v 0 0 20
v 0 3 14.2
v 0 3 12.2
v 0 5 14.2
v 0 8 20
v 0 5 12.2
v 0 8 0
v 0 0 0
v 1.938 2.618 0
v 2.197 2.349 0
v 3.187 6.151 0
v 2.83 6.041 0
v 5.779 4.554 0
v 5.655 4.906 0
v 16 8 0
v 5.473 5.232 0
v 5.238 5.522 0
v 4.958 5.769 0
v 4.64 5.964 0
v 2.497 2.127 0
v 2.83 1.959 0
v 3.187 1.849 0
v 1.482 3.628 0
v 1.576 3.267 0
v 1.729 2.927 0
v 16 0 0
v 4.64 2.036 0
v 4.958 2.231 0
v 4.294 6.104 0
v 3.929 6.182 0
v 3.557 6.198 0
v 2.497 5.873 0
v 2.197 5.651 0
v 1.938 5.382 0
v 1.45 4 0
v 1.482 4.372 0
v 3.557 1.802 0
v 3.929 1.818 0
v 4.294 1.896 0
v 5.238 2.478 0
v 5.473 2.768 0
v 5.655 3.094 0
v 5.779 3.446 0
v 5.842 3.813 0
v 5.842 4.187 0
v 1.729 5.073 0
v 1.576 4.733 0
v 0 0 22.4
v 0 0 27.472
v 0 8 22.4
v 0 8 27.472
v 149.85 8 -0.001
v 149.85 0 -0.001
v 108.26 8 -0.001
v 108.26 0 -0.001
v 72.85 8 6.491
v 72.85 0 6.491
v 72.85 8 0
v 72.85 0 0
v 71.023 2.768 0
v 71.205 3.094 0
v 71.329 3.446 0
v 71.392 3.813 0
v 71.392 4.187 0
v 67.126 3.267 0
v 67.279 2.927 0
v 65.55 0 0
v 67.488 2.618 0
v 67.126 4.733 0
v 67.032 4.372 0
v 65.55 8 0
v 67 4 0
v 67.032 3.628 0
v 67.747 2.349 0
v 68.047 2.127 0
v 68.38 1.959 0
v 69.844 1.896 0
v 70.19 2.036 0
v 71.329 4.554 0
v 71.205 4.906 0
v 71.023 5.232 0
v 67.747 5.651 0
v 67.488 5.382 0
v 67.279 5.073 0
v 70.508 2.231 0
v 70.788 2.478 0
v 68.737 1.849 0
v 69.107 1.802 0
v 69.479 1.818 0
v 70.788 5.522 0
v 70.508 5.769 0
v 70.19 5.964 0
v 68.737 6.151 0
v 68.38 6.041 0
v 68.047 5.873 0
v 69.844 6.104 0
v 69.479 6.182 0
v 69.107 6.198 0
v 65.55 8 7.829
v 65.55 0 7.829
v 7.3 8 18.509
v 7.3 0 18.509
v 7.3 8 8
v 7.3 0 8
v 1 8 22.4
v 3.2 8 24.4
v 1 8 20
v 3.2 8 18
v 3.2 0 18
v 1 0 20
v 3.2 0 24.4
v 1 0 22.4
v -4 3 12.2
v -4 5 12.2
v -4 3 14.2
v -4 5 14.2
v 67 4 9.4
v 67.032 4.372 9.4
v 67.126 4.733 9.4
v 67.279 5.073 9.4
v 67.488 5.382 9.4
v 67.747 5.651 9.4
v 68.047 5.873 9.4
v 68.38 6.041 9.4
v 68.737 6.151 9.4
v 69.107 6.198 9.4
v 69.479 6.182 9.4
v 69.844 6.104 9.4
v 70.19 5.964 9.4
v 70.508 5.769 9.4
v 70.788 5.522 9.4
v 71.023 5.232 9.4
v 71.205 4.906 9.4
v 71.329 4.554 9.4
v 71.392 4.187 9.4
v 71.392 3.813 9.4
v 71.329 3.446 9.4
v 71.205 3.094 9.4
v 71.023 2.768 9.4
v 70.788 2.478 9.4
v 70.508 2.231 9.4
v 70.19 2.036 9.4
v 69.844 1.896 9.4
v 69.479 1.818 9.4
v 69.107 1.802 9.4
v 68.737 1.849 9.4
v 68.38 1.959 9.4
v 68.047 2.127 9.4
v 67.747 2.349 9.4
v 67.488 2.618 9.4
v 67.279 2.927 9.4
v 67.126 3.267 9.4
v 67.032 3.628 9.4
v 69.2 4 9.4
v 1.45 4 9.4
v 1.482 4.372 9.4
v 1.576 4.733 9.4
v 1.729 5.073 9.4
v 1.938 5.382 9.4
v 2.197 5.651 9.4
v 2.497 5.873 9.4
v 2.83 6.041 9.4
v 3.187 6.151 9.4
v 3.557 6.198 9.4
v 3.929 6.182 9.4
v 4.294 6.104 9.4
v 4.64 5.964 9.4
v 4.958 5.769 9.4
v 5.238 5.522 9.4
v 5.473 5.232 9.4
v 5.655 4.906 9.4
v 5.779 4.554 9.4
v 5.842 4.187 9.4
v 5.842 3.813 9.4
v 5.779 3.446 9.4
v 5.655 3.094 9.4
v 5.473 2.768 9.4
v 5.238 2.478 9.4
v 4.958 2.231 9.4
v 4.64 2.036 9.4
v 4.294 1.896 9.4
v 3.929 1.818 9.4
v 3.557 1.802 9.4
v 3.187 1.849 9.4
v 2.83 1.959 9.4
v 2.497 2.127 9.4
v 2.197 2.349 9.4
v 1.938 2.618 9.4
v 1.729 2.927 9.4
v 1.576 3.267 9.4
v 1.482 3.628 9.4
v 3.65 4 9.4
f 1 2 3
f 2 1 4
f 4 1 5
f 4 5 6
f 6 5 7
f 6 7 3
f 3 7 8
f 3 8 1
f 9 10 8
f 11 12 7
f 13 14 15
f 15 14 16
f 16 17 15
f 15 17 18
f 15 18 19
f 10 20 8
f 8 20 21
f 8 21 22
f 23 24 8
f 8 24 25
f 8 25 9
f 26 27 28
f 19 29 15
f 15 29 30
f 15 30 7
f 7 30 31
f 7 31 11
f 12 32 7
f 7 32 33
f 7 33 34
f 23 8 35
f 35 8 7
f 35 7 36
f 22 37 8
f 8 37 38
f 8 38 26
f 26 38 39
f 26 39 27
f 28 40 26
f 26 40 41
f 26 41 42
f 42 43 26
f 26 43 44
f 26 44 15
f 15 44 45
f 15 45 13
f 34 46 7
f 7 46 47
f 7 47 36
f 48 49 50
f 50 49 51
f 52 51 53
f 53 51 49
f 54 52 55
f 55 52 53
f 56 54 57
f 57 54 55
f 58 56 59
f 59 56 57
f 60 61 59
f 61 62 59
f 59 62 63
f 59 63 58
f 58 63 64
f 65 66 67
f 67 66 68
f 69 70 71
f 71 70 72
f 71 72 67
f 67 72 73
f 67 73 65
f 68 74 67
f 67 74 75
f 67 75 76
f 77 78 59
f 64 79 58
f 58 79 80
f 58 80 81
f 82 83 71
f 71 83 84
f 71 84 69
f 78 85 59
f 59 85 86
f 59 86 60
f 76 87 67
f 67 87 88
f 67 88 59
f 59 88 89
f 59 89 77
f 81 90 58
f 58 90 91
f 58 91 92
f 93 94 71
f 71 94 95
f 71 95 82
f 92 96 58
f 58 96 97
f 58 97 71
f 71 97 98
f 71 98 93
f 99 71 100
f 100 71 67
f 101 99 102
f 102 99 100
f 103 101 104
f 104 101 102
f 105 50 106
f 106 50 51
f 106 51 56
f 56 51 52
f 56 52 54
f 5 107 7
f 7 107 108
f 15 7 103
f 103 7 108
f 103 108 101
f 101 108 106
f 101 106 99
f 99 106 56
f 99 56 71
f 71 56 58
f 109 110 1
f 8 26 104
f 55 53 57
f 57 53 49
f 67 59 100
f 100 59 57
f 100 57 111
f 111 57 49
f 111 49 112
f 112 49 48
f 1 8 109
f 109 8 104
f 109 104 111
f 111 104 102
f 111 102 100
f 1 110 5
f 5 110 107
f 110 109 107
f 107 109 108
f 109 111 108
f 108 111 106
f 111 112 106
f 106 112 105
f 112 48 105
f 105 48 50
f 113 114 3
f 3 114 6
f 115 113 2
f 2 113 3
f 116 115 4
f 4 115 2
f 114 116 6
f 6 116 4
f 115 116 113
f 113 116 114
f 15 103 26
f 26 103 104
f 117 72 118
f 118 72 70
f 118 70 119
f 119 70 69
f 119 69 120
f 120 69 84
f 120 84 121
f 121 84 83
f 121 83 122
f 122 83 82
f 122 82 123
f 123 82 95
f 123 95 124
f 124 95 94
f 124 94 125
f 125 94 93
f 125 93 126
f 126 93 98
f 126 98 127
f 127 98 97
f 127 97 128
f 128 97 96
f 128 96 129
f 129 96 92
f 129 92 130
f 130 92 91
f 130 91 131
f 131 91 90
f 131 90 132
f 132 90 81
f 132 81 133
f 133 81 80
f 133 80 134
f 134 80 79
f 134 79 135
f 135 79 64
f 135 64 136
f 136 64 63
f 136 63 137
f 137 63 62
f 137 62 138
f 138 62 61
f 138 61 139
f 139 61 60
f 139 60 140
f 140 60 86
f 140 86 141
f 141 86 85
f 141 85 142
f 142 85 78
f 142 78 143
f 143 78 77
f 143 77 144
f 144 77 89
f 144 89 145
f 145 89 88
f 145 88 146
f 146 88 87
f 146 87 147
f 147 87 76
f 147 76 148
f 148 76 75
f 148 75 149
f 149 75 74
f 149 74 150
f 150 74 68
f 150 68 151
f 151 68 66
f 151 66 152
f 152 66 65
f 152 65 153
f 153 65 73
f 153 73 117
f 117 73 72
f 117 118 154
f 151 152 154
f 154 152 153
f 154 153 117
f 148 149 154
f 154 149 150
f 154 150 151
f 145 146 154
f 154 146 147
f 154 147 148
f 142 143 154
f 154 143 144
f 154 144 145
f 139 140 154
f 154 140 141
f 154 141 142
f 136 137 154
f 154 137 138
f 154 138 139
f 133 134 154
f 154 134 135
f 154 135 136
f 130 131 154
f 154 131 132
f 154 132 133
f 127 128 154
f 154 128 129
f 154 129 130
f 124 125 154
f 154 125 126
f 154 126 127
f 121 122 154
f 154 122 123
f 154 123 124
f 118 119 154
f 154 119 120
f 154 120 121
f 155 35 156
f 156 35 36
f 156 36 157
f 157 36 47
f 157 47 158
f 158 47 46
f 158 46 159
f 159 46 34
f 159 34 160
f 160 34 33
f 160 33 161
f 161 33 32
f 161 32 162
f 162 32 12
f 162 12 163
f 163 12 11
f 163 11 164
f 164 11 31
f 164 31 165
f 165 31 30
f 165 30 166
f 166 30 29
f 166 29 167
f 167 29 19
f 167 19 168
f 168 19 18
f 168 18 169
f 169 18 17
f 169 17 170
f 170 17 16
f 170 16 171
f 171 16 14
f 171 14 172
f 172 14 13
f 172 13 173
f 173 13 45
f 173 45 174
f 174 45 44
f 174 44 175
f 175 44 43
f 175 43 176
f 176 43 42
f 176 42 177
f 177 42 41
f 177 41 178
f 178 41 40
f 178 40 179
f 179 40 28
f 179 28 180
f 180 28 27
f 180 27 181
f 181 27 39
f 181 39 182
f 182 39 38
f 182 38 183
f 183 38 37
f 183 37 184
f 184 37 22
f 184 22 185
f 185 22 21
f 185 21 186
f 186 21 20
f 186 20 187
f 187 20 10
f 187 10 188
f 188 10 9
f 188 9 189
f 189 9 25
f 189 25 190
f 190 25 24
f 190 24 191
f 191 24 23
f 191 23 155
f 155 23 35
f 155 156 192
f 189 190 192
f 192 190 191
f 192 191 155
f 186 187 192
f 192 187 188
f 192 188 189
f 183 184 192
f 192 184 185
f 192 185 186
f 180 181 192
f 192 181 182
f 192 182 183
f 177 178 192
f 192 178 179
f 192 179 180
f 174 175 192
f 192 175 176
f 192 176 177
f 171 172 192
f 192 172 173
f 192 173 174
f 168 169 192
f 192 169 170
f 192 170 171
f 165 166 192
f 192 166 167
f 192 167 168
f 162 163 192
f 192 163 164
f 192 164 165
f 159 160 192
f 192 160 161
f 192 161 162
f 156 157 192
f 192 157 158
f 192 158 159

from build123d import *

# Parameters (mm, degrees)
P_IDAT_VYSUNUT_M1_DEPTH  = 8
ODEBRAT_VYSUNUT_M1_DEPTH = 153.557332159
SKICA3_W                 = 2
SKICA3_H                 = 2
P_IDAT_VYSUNUT_M2_DEPTH  = 4
SKICA5_W                 = 16
SKICA5_H                 = 8
P_IDAT_VYSUNUT_M4_DEPTH  = 8
ODEBRAT_VYSUNUT_M3_DEPTH = 153.557332159
SKICA8_R                 = 2.2
ODEBRAT_VYSUNUT_M4_DEPTH = 9.4


with BuildPart() as part:
    # Skica1 → Přidat vysunutím1 (new body)
    with BuildSketch(Plane(origin=(0, 0, 0), x_dir=(1, 0, 0), z_dir=(0, 1, 0))):
        Polygon((0, 0), (0, -27.47211487), (149.85, 0.000769495), (108.259653873, 0.000769495), (72.85, -6.491091207), (72.85, 0), (65.55, 0), (65.55, -7.829443265), (7.3, -18.508759343), (7.3, 0), align=None)
    extrude(amount=P_IDAT_VYSUNUT_M1_DEPTH)

    # Skica2 → Odebrat vysunutím1 (cut, through all)
    with BuildSketch(Plane(origin=(0, 8, 0), x_dir=(1, 0, 0), z_dir=(0, 1, 0))):
        Polygon((0, -20), (1, -20), (3.2, -18), (3.2, -24.4), (1, -22.4), (0, -22.4), align=None)
    extrude(amount=-ODEBRAT_VYSUNUT_M1_DEPTH, mode=Mode.SUBTRACT)

    # Skica3 → Přidat vysunutím2 (add)
    with BuildSketch(Plane.ZY):
        with Locations((13.2, 4)):
            Rectangle(SKICA3_W, SKICA3_H)
    extrude(amount=P_IDAT_VYSUNUT_M2_DEPTH)

    # Skica5 → Přidat vysunutím4 (add)
    with BuildSketch(Plane(origin=(0, 8, 0), x_dir=(1, 0, 0), z_dir=(0, 1, 0))):
        with Locations((8, -4)):
            Rectangle(SKICA5_W, SKICA5_H)
    extrude(amount=-P_IDAT_VYSUNUT_M4_DEPTH)

    # Skica7 → Odebrat vysunutím3 (cut, through all)
    with BuildSketch(Plane.XZ):
        Polygon((7.3, 8), (16, 8), (16, 0), align=None)
    extrude(amount=-ODEBRAT_VYSUNUT_M3_DEPTH, mode=Mode.SUBTRACT)

    # Skica8 → Odebrat vysunutím4 (cut)
    with BuildSketch(Plane(origin=(0, 0, 0), x_dir=(-1, 0, 0), z_dir=(0, 0, -1))):
        with Locations((-3.65, 4)):
            Circle(SKICA8_R)
        with Locations((-69.2, 4)):
            Circle(SKICA8_R)
    extrude(amount=-ODEBRAT_VYSUNUT_M4_DEPTH, mode=Mode.SUBTRACT)


solid = part.part
